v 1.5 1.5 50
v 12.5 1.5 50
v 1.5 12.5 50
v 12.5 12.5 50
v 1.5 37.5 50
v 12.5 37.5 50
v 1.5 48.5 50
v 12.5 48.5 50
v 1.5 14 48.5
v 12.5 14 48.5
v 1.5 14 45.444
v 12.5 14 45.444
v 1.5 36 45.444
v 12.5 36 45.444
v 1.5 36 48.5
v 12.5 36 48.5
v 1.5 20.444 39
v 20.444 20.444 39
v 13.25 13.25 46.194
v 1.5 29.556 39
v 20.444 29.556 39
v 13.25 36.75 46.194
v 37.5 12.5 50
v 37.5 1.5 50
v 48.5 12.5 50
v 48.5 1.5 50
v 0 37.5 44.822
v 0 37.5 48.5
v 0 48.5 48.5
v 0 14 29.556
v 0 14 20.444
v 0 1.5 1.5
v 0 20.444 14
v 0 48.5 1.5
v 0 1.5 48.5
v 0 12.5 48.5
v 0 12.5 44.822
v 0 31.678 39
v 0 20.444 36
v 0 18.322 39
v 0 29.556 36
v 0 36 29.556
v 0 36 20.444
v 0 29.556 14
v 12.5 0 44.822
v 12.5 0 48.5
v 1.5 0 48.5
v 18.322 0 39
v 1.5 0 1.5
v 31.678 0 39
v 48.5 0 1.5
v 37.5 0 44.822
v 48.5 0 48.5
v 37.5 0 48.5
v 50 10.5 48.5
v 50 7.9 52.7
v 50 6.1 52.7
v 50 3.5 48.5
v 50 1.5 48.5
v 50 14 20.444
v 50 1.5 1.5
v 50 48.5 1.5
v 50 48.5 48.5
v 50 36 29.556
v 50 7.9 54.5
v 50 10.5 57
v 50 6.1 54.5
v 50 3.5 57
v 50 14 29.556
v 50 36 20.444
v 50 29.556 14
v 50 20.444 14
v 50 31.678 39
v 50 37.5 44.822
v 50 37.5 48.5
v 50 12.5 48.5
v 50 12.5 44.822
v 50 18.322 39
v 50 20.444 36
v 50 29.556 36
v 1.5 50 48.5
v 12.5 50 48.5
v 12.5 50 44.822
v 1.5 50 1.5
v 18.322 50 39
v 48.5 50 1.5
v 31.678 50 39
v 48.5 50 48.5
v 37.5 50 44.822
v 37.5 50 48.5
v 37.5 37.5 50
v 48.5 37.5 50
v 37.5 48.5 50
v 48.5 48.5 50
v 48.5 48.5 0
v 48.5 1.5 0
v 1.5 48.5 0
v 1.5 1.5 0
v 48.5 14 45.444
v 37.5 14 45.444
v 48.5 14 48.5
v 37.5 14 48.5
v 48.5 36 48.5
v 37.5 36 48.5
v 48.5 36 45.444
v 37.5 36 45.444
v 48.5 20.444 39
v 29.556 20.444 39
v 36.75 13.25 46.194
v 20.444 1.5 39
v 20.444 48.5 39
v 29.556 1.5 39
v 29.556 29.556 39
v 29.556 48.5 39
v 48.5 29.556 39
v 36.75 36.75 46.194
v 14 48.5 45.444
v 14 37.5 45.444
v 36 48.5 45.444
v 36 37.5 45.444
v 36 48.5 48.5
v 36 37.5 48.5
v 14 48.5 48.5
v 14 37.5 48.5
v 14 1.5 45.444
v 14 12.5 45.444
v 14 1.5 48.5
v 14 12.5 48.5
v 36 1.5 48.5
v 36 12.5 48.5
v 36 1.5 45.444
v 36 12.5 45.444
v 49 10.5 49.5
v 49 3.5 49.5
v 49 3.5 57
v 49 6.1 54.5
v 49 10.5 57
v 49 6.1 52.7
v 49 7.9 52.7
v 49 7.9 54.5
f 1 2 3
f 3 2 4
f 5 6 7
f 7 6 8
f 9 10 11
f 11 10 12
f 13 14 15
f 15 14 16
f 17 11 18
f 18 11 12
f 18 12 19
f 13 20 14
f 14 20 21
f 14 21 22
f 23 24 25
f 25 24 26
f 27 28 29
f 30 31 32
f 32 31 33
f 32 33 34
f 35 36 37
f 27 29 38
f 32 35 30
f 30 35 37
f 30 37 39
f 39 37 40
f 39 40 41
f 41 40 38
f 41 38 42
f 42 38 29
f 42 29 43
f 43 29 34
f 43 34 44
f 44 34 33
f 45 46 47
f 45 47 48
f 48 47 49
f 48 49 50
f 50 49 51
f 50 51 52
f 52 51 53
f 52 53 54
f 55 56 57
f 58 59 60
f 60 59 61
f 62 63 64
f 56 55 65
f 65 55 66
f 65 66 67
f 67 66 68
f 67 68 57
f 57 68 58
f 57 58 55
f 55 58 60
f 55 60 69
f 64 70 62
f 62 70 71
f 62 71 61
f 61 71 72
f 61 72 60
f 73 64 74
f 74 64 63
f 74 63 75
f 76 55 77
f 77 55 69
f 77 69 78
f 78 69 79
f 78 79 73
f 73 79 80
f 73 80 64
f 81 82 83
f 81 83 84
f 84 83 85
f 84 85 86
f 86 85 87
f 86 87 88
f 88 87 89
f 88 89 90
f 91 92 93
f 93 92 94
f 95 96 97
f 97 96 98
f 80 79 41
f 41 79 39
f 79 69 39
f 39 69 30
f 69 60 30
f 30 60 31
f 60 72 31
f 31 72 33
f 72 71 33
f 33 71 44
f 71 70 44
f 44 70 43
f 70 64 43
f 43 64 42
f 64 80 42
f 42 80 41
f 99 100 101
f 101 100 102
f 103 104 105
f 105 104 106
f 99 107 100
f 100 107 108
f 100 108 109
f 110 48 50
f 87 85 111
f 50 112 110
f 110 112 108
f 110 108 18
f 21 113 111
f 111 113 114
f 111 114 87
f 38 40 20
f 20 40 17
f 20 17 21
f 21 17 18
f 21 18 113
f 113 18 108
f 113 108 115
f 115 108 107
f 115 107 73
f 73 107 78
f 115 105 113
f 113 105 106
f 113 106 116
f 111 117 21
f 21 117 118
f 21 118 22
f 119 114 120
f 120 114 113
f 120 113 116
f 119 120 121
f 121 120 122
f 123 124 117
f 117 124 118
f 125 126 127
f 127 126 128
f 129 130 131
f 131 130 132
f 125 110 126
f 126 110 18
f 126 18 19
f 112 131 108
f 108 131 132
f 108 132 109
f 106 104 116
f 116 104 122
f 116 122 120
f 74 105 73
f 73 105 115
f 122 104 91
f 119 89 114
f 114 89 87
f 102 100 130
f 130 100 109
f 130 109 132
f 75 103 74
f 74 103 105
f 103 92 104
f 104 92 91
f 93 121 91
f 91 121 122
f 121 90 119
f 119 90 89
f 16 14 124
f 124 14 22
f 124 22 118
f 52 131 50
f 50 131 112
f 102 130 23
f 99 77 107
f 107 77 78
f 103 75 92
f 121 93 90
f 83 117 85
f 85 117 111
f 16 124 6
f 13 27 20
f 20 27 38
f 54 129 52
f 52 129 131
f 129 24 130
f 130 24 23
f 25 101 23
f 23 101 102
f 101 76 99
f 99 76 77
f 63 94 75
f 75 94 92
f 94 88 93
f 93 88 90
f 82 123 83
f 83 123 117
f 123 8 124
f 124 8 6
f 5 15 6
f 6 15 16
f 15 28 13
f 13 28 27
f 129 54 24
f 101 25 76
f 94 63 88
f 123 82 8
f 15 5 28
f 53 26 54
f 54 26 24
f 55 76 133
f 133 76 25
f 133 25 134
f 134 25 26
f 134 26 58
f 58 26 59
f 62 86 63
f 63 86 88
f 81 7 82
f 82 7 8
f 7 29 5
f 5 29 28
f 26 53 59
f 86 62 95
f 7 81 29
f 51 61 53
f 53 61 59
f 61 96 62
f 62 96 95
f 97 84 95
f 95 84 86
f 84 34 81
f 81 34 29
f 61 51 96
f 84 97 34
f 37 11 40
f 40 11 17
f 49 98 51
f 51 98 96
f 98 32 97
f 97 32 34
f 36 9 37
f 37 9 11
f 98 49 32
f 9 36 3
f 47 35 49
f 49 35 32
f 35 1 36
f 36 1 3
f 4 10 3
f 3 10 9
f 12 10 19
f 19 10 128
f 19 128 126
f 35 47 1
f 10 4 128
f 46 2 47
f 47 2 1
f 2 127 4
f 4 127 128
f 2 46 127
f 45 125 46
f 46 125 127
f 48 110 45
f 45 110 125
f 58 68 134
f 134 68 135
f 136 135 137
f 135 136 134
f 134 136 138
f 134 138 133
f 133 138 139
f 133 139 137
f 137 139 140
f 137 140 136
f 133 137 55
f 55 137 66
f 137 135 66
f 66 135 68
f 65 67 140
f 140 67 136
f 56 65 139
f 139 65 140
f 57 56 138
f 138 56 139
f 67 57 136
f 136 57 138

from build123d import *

# Parameters (mm, degrees)
SKETCH1_W                = 50
SKETCH1_H                = 50
BOSS_EXTRUDE1_DEPTH      = 50
CUT_EXTRUDE1_DEPTH       = 87.602540378
CUT_EXTRUDE2_DEPTH       = 87.602540378
CHAMFER1_SIZE            = 1.5
BOSS_EXTRUDE2_DEPTH      = 7
BOSS_EXTRUDE2_DEPTH_BACK = 10
SKETCH4_W                = 1
SKETCH4_H                = 7
SKETCH5_W                = 1.8
SKETCH5_H                = 1.8
CUT_EXTRUDE3_DEPTH       = 7


with BuildPart() as part:
    # Sketch1 → Boss-Extrude1 (new body)
    with BuildSketch(Plane.XY):
        with Locations((25, 25)):
            Rectangle(SKETCH1_W, SKETCH1_H)
    extrude(amount=BOSS_EXTRUDE1_DEPTH)

    # Sketch2 → Cut-Extrude1 (cut, through all)
    with BuildSketch(Plane.ZY):
        Polygon((36, 29.556349186), (29.556349186, 36), (20.443650814, 36), (14, 29.556349186), (14, 20.443650814), (20.443650814, 14), (29.556349186, 14), (36, 20.443650814), align=None)
        Polygon((61, 29.556349186), (54.556349186, 36), (45.443650814, 36), (39, 29.556349186), (39, 20.443650814), (45.443650814, 14), (54.556349186, 14), (61, 20.443650814), align=None)
    extrude(amount=-CUT_EXTRUDE1_DEPTH, mode=Mode.SUBTRACT)

    # Sketch3 → Cut-Extrude2 (cut, through all)
    with BuildSketch(Plane.XZ):
        Polygon((29.556349186, 39), (36, 45.443650814), (36, 54.556349186), (29.556349186, 61), (20.443650814, 61), (14, 54.556349186), (14, 45.443650814), (20.443650814, 39), align=None)
    extrude(amount=-CUT_EXTRUDE2_DEPTH, mode=Mode.SUBTRACT)

    # Chamfer1
    chamfer1_edges = [part.edges().sort_by_distance(p)[0] for p in [
        (50, 7, 50),
        (0, 7, 50),
        (50, 43, 50),
        (7, 36, 50),
        (43, 14, 50),
        (43, 50, 50),
        (50, 14, 47.721825407),
        (50, 36, 47.721825407),
        (0, 14, 47.721825407),
        (0, 36, 47.721825407),
        (0, 32.778174593, 42.221825407),
        (0, 17.221825407, 42.221825407),
        (50, 17.221825407, 42.221825407),
        (50, 32.778174593, 42.221825407),
        (43, 36, 50),
        (36, 36, 47.721825407),
        (14, 36, 47.721825407),
        (7, 14, 50),
        (7, 50, 50),
        (43, 0, 50),
        (36, 0, 47.721825407),
        (14, 0, 47.721825407),
        (17.221825407, 0, 42.221825407),
        (32.778174593, 0, 42.221825407),
        (14, 7, 50),
        (14, 14, 47.721825407),
        (14, 43, 50),
        (14, 50, 47.721825407),
        (36, 14, 47.721825407),
        (36, 7, 50),
        (36, 50, 47.721825407),
        (36, 43, 50),
        (17.221825407, 50, 42.221825407),
        (32.778174593, 50, 42.221825407),
        (0, 43, 50),
        (25, 50, 0),
        (50, 25, 0),
        (25, 0, 0),
        (0, 25, 0),
        (7, 0, 50),
        (0, 50, 25),
        (50, 50, 25),
        (50, 0, 25),
        (0, 0, 25),
    ]]
    chamfer(chamfer1_edges, length=CHAMFER1_SIZE)

    # Sketch4 → Boss-Extrude2 (add, two sides: drawn at the far end of the back side and taken through both)
    with BuildSketch(Plane.XY.offset(50).offset(-BOSS_EXTRUDE2_DEPTH_BACK)):
        with Locations((49.5, 7)):
            Rectangle(SKETCH4_W, SKETCH4_H)
    extrude(amount=BOSS_EXTRUDE2_DEPTH + BOSS_EXTRUDE2_DEPTH_BACK)

    # Sketch5 → Cut-Extrude3 (cut)
    with BuildSketch(Plane(origin=(50, 0, 0), x_dir=(0, 0, -1), z_dir=(1, 0, 0))):
        with Locations((-53.6, 7)):
            Rectangle(SKETCH5_W, SKETCH5_H)
    extrude(amount=-CUT_EXTRUDE3_DEPTH, mode=Mode.SUBTRACT)


solid = part.part
